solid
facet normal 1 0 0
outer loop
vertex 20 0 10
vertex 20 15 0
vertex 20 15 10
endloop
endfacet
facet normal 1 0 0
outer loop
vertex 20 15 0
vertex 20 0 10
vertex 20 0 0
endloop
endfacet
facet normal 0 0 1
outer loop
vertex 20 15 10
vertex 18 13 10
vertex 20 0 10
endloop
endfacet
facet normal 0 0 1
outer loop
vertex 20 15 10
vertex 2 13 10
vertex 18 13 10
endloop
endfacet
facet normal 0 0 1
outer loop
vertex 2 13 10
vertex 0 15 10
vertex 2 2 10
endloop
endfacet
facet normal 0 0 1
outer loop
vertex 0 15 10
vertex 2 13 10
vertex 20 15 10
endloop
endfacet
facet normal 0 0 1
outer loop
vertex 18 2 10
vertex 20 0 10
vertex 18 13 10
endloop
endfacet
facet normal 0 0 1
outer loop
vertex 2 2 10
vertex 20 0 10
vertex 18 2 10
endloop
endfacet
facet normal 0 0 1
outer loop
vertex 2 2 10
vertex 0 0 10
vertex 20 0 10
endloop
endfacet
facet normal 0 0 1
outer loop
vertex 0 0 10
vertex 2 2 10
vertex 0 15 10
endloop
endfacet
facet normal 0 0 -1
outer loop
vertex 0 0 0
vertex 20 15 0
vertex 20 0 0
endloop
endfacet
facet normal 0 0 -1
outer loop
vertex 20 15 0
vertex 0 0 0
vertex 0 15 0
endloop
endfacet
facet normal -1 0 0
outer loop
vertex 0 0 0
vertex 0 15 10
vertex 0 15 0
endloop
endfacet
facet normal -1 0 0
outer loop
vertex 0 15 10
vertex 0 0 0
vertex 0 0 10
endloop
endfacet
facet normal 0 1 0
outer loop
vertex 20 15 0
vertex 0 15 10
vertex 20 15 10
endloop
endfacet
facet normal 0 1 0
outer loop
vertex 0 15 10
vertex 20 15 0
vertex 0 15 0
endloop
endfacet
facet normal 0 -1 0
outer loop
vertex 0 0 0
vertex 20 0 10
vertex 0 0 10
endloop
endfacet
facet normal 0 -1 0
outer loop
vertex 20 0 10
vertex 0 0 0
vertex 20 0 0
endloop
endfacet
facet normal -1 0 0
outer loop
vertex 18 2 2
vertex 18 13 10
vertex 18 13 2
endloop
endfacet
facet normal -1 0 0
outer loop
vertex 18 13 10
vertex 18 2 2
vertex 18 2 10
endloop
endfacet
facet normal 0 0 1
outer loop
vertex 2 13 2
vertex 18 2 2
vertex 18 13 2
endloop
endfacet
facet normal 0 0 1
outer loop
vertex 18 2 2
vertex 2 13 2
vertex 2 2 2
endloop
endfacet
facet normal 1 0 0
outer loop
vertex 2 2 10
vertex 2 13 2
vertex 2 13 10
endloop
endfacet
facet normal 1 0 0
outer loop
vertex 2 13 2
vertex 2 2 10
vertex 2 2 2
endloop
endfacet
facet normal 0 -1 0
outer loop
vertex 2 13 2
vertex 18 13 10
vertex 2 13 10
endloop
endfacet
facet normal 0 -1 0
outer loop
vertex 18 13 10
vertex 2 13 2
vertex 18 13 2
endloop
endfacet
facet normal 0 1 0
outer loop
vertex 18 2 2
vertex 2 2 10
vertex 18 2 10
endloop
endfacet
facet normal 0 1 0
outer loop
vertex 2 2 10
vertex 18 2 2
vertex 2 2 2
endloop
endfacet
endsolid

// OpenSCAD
// Parametric box with customizable dimensions
// Default values
width = 20;
height = 10;
depth = 15;
wall_thickness = 2;
has_lid = false;

difference() {
    // Outer box
    cube([width, depth, height]);
    
    // Inner cavity
    translate([wall_thickness, wall_thickness, wall_thickness])
        cube([width - 2*wall_thickness, 
              depth - 2*wall_thickness, 
              height - (has_lid ? wall_thickness : 0)]);
}

// Optional lid
if (has_lid) {
    translate([0, depth + 5, 0])
        cube([width, depth, wall_thickness]);
}
